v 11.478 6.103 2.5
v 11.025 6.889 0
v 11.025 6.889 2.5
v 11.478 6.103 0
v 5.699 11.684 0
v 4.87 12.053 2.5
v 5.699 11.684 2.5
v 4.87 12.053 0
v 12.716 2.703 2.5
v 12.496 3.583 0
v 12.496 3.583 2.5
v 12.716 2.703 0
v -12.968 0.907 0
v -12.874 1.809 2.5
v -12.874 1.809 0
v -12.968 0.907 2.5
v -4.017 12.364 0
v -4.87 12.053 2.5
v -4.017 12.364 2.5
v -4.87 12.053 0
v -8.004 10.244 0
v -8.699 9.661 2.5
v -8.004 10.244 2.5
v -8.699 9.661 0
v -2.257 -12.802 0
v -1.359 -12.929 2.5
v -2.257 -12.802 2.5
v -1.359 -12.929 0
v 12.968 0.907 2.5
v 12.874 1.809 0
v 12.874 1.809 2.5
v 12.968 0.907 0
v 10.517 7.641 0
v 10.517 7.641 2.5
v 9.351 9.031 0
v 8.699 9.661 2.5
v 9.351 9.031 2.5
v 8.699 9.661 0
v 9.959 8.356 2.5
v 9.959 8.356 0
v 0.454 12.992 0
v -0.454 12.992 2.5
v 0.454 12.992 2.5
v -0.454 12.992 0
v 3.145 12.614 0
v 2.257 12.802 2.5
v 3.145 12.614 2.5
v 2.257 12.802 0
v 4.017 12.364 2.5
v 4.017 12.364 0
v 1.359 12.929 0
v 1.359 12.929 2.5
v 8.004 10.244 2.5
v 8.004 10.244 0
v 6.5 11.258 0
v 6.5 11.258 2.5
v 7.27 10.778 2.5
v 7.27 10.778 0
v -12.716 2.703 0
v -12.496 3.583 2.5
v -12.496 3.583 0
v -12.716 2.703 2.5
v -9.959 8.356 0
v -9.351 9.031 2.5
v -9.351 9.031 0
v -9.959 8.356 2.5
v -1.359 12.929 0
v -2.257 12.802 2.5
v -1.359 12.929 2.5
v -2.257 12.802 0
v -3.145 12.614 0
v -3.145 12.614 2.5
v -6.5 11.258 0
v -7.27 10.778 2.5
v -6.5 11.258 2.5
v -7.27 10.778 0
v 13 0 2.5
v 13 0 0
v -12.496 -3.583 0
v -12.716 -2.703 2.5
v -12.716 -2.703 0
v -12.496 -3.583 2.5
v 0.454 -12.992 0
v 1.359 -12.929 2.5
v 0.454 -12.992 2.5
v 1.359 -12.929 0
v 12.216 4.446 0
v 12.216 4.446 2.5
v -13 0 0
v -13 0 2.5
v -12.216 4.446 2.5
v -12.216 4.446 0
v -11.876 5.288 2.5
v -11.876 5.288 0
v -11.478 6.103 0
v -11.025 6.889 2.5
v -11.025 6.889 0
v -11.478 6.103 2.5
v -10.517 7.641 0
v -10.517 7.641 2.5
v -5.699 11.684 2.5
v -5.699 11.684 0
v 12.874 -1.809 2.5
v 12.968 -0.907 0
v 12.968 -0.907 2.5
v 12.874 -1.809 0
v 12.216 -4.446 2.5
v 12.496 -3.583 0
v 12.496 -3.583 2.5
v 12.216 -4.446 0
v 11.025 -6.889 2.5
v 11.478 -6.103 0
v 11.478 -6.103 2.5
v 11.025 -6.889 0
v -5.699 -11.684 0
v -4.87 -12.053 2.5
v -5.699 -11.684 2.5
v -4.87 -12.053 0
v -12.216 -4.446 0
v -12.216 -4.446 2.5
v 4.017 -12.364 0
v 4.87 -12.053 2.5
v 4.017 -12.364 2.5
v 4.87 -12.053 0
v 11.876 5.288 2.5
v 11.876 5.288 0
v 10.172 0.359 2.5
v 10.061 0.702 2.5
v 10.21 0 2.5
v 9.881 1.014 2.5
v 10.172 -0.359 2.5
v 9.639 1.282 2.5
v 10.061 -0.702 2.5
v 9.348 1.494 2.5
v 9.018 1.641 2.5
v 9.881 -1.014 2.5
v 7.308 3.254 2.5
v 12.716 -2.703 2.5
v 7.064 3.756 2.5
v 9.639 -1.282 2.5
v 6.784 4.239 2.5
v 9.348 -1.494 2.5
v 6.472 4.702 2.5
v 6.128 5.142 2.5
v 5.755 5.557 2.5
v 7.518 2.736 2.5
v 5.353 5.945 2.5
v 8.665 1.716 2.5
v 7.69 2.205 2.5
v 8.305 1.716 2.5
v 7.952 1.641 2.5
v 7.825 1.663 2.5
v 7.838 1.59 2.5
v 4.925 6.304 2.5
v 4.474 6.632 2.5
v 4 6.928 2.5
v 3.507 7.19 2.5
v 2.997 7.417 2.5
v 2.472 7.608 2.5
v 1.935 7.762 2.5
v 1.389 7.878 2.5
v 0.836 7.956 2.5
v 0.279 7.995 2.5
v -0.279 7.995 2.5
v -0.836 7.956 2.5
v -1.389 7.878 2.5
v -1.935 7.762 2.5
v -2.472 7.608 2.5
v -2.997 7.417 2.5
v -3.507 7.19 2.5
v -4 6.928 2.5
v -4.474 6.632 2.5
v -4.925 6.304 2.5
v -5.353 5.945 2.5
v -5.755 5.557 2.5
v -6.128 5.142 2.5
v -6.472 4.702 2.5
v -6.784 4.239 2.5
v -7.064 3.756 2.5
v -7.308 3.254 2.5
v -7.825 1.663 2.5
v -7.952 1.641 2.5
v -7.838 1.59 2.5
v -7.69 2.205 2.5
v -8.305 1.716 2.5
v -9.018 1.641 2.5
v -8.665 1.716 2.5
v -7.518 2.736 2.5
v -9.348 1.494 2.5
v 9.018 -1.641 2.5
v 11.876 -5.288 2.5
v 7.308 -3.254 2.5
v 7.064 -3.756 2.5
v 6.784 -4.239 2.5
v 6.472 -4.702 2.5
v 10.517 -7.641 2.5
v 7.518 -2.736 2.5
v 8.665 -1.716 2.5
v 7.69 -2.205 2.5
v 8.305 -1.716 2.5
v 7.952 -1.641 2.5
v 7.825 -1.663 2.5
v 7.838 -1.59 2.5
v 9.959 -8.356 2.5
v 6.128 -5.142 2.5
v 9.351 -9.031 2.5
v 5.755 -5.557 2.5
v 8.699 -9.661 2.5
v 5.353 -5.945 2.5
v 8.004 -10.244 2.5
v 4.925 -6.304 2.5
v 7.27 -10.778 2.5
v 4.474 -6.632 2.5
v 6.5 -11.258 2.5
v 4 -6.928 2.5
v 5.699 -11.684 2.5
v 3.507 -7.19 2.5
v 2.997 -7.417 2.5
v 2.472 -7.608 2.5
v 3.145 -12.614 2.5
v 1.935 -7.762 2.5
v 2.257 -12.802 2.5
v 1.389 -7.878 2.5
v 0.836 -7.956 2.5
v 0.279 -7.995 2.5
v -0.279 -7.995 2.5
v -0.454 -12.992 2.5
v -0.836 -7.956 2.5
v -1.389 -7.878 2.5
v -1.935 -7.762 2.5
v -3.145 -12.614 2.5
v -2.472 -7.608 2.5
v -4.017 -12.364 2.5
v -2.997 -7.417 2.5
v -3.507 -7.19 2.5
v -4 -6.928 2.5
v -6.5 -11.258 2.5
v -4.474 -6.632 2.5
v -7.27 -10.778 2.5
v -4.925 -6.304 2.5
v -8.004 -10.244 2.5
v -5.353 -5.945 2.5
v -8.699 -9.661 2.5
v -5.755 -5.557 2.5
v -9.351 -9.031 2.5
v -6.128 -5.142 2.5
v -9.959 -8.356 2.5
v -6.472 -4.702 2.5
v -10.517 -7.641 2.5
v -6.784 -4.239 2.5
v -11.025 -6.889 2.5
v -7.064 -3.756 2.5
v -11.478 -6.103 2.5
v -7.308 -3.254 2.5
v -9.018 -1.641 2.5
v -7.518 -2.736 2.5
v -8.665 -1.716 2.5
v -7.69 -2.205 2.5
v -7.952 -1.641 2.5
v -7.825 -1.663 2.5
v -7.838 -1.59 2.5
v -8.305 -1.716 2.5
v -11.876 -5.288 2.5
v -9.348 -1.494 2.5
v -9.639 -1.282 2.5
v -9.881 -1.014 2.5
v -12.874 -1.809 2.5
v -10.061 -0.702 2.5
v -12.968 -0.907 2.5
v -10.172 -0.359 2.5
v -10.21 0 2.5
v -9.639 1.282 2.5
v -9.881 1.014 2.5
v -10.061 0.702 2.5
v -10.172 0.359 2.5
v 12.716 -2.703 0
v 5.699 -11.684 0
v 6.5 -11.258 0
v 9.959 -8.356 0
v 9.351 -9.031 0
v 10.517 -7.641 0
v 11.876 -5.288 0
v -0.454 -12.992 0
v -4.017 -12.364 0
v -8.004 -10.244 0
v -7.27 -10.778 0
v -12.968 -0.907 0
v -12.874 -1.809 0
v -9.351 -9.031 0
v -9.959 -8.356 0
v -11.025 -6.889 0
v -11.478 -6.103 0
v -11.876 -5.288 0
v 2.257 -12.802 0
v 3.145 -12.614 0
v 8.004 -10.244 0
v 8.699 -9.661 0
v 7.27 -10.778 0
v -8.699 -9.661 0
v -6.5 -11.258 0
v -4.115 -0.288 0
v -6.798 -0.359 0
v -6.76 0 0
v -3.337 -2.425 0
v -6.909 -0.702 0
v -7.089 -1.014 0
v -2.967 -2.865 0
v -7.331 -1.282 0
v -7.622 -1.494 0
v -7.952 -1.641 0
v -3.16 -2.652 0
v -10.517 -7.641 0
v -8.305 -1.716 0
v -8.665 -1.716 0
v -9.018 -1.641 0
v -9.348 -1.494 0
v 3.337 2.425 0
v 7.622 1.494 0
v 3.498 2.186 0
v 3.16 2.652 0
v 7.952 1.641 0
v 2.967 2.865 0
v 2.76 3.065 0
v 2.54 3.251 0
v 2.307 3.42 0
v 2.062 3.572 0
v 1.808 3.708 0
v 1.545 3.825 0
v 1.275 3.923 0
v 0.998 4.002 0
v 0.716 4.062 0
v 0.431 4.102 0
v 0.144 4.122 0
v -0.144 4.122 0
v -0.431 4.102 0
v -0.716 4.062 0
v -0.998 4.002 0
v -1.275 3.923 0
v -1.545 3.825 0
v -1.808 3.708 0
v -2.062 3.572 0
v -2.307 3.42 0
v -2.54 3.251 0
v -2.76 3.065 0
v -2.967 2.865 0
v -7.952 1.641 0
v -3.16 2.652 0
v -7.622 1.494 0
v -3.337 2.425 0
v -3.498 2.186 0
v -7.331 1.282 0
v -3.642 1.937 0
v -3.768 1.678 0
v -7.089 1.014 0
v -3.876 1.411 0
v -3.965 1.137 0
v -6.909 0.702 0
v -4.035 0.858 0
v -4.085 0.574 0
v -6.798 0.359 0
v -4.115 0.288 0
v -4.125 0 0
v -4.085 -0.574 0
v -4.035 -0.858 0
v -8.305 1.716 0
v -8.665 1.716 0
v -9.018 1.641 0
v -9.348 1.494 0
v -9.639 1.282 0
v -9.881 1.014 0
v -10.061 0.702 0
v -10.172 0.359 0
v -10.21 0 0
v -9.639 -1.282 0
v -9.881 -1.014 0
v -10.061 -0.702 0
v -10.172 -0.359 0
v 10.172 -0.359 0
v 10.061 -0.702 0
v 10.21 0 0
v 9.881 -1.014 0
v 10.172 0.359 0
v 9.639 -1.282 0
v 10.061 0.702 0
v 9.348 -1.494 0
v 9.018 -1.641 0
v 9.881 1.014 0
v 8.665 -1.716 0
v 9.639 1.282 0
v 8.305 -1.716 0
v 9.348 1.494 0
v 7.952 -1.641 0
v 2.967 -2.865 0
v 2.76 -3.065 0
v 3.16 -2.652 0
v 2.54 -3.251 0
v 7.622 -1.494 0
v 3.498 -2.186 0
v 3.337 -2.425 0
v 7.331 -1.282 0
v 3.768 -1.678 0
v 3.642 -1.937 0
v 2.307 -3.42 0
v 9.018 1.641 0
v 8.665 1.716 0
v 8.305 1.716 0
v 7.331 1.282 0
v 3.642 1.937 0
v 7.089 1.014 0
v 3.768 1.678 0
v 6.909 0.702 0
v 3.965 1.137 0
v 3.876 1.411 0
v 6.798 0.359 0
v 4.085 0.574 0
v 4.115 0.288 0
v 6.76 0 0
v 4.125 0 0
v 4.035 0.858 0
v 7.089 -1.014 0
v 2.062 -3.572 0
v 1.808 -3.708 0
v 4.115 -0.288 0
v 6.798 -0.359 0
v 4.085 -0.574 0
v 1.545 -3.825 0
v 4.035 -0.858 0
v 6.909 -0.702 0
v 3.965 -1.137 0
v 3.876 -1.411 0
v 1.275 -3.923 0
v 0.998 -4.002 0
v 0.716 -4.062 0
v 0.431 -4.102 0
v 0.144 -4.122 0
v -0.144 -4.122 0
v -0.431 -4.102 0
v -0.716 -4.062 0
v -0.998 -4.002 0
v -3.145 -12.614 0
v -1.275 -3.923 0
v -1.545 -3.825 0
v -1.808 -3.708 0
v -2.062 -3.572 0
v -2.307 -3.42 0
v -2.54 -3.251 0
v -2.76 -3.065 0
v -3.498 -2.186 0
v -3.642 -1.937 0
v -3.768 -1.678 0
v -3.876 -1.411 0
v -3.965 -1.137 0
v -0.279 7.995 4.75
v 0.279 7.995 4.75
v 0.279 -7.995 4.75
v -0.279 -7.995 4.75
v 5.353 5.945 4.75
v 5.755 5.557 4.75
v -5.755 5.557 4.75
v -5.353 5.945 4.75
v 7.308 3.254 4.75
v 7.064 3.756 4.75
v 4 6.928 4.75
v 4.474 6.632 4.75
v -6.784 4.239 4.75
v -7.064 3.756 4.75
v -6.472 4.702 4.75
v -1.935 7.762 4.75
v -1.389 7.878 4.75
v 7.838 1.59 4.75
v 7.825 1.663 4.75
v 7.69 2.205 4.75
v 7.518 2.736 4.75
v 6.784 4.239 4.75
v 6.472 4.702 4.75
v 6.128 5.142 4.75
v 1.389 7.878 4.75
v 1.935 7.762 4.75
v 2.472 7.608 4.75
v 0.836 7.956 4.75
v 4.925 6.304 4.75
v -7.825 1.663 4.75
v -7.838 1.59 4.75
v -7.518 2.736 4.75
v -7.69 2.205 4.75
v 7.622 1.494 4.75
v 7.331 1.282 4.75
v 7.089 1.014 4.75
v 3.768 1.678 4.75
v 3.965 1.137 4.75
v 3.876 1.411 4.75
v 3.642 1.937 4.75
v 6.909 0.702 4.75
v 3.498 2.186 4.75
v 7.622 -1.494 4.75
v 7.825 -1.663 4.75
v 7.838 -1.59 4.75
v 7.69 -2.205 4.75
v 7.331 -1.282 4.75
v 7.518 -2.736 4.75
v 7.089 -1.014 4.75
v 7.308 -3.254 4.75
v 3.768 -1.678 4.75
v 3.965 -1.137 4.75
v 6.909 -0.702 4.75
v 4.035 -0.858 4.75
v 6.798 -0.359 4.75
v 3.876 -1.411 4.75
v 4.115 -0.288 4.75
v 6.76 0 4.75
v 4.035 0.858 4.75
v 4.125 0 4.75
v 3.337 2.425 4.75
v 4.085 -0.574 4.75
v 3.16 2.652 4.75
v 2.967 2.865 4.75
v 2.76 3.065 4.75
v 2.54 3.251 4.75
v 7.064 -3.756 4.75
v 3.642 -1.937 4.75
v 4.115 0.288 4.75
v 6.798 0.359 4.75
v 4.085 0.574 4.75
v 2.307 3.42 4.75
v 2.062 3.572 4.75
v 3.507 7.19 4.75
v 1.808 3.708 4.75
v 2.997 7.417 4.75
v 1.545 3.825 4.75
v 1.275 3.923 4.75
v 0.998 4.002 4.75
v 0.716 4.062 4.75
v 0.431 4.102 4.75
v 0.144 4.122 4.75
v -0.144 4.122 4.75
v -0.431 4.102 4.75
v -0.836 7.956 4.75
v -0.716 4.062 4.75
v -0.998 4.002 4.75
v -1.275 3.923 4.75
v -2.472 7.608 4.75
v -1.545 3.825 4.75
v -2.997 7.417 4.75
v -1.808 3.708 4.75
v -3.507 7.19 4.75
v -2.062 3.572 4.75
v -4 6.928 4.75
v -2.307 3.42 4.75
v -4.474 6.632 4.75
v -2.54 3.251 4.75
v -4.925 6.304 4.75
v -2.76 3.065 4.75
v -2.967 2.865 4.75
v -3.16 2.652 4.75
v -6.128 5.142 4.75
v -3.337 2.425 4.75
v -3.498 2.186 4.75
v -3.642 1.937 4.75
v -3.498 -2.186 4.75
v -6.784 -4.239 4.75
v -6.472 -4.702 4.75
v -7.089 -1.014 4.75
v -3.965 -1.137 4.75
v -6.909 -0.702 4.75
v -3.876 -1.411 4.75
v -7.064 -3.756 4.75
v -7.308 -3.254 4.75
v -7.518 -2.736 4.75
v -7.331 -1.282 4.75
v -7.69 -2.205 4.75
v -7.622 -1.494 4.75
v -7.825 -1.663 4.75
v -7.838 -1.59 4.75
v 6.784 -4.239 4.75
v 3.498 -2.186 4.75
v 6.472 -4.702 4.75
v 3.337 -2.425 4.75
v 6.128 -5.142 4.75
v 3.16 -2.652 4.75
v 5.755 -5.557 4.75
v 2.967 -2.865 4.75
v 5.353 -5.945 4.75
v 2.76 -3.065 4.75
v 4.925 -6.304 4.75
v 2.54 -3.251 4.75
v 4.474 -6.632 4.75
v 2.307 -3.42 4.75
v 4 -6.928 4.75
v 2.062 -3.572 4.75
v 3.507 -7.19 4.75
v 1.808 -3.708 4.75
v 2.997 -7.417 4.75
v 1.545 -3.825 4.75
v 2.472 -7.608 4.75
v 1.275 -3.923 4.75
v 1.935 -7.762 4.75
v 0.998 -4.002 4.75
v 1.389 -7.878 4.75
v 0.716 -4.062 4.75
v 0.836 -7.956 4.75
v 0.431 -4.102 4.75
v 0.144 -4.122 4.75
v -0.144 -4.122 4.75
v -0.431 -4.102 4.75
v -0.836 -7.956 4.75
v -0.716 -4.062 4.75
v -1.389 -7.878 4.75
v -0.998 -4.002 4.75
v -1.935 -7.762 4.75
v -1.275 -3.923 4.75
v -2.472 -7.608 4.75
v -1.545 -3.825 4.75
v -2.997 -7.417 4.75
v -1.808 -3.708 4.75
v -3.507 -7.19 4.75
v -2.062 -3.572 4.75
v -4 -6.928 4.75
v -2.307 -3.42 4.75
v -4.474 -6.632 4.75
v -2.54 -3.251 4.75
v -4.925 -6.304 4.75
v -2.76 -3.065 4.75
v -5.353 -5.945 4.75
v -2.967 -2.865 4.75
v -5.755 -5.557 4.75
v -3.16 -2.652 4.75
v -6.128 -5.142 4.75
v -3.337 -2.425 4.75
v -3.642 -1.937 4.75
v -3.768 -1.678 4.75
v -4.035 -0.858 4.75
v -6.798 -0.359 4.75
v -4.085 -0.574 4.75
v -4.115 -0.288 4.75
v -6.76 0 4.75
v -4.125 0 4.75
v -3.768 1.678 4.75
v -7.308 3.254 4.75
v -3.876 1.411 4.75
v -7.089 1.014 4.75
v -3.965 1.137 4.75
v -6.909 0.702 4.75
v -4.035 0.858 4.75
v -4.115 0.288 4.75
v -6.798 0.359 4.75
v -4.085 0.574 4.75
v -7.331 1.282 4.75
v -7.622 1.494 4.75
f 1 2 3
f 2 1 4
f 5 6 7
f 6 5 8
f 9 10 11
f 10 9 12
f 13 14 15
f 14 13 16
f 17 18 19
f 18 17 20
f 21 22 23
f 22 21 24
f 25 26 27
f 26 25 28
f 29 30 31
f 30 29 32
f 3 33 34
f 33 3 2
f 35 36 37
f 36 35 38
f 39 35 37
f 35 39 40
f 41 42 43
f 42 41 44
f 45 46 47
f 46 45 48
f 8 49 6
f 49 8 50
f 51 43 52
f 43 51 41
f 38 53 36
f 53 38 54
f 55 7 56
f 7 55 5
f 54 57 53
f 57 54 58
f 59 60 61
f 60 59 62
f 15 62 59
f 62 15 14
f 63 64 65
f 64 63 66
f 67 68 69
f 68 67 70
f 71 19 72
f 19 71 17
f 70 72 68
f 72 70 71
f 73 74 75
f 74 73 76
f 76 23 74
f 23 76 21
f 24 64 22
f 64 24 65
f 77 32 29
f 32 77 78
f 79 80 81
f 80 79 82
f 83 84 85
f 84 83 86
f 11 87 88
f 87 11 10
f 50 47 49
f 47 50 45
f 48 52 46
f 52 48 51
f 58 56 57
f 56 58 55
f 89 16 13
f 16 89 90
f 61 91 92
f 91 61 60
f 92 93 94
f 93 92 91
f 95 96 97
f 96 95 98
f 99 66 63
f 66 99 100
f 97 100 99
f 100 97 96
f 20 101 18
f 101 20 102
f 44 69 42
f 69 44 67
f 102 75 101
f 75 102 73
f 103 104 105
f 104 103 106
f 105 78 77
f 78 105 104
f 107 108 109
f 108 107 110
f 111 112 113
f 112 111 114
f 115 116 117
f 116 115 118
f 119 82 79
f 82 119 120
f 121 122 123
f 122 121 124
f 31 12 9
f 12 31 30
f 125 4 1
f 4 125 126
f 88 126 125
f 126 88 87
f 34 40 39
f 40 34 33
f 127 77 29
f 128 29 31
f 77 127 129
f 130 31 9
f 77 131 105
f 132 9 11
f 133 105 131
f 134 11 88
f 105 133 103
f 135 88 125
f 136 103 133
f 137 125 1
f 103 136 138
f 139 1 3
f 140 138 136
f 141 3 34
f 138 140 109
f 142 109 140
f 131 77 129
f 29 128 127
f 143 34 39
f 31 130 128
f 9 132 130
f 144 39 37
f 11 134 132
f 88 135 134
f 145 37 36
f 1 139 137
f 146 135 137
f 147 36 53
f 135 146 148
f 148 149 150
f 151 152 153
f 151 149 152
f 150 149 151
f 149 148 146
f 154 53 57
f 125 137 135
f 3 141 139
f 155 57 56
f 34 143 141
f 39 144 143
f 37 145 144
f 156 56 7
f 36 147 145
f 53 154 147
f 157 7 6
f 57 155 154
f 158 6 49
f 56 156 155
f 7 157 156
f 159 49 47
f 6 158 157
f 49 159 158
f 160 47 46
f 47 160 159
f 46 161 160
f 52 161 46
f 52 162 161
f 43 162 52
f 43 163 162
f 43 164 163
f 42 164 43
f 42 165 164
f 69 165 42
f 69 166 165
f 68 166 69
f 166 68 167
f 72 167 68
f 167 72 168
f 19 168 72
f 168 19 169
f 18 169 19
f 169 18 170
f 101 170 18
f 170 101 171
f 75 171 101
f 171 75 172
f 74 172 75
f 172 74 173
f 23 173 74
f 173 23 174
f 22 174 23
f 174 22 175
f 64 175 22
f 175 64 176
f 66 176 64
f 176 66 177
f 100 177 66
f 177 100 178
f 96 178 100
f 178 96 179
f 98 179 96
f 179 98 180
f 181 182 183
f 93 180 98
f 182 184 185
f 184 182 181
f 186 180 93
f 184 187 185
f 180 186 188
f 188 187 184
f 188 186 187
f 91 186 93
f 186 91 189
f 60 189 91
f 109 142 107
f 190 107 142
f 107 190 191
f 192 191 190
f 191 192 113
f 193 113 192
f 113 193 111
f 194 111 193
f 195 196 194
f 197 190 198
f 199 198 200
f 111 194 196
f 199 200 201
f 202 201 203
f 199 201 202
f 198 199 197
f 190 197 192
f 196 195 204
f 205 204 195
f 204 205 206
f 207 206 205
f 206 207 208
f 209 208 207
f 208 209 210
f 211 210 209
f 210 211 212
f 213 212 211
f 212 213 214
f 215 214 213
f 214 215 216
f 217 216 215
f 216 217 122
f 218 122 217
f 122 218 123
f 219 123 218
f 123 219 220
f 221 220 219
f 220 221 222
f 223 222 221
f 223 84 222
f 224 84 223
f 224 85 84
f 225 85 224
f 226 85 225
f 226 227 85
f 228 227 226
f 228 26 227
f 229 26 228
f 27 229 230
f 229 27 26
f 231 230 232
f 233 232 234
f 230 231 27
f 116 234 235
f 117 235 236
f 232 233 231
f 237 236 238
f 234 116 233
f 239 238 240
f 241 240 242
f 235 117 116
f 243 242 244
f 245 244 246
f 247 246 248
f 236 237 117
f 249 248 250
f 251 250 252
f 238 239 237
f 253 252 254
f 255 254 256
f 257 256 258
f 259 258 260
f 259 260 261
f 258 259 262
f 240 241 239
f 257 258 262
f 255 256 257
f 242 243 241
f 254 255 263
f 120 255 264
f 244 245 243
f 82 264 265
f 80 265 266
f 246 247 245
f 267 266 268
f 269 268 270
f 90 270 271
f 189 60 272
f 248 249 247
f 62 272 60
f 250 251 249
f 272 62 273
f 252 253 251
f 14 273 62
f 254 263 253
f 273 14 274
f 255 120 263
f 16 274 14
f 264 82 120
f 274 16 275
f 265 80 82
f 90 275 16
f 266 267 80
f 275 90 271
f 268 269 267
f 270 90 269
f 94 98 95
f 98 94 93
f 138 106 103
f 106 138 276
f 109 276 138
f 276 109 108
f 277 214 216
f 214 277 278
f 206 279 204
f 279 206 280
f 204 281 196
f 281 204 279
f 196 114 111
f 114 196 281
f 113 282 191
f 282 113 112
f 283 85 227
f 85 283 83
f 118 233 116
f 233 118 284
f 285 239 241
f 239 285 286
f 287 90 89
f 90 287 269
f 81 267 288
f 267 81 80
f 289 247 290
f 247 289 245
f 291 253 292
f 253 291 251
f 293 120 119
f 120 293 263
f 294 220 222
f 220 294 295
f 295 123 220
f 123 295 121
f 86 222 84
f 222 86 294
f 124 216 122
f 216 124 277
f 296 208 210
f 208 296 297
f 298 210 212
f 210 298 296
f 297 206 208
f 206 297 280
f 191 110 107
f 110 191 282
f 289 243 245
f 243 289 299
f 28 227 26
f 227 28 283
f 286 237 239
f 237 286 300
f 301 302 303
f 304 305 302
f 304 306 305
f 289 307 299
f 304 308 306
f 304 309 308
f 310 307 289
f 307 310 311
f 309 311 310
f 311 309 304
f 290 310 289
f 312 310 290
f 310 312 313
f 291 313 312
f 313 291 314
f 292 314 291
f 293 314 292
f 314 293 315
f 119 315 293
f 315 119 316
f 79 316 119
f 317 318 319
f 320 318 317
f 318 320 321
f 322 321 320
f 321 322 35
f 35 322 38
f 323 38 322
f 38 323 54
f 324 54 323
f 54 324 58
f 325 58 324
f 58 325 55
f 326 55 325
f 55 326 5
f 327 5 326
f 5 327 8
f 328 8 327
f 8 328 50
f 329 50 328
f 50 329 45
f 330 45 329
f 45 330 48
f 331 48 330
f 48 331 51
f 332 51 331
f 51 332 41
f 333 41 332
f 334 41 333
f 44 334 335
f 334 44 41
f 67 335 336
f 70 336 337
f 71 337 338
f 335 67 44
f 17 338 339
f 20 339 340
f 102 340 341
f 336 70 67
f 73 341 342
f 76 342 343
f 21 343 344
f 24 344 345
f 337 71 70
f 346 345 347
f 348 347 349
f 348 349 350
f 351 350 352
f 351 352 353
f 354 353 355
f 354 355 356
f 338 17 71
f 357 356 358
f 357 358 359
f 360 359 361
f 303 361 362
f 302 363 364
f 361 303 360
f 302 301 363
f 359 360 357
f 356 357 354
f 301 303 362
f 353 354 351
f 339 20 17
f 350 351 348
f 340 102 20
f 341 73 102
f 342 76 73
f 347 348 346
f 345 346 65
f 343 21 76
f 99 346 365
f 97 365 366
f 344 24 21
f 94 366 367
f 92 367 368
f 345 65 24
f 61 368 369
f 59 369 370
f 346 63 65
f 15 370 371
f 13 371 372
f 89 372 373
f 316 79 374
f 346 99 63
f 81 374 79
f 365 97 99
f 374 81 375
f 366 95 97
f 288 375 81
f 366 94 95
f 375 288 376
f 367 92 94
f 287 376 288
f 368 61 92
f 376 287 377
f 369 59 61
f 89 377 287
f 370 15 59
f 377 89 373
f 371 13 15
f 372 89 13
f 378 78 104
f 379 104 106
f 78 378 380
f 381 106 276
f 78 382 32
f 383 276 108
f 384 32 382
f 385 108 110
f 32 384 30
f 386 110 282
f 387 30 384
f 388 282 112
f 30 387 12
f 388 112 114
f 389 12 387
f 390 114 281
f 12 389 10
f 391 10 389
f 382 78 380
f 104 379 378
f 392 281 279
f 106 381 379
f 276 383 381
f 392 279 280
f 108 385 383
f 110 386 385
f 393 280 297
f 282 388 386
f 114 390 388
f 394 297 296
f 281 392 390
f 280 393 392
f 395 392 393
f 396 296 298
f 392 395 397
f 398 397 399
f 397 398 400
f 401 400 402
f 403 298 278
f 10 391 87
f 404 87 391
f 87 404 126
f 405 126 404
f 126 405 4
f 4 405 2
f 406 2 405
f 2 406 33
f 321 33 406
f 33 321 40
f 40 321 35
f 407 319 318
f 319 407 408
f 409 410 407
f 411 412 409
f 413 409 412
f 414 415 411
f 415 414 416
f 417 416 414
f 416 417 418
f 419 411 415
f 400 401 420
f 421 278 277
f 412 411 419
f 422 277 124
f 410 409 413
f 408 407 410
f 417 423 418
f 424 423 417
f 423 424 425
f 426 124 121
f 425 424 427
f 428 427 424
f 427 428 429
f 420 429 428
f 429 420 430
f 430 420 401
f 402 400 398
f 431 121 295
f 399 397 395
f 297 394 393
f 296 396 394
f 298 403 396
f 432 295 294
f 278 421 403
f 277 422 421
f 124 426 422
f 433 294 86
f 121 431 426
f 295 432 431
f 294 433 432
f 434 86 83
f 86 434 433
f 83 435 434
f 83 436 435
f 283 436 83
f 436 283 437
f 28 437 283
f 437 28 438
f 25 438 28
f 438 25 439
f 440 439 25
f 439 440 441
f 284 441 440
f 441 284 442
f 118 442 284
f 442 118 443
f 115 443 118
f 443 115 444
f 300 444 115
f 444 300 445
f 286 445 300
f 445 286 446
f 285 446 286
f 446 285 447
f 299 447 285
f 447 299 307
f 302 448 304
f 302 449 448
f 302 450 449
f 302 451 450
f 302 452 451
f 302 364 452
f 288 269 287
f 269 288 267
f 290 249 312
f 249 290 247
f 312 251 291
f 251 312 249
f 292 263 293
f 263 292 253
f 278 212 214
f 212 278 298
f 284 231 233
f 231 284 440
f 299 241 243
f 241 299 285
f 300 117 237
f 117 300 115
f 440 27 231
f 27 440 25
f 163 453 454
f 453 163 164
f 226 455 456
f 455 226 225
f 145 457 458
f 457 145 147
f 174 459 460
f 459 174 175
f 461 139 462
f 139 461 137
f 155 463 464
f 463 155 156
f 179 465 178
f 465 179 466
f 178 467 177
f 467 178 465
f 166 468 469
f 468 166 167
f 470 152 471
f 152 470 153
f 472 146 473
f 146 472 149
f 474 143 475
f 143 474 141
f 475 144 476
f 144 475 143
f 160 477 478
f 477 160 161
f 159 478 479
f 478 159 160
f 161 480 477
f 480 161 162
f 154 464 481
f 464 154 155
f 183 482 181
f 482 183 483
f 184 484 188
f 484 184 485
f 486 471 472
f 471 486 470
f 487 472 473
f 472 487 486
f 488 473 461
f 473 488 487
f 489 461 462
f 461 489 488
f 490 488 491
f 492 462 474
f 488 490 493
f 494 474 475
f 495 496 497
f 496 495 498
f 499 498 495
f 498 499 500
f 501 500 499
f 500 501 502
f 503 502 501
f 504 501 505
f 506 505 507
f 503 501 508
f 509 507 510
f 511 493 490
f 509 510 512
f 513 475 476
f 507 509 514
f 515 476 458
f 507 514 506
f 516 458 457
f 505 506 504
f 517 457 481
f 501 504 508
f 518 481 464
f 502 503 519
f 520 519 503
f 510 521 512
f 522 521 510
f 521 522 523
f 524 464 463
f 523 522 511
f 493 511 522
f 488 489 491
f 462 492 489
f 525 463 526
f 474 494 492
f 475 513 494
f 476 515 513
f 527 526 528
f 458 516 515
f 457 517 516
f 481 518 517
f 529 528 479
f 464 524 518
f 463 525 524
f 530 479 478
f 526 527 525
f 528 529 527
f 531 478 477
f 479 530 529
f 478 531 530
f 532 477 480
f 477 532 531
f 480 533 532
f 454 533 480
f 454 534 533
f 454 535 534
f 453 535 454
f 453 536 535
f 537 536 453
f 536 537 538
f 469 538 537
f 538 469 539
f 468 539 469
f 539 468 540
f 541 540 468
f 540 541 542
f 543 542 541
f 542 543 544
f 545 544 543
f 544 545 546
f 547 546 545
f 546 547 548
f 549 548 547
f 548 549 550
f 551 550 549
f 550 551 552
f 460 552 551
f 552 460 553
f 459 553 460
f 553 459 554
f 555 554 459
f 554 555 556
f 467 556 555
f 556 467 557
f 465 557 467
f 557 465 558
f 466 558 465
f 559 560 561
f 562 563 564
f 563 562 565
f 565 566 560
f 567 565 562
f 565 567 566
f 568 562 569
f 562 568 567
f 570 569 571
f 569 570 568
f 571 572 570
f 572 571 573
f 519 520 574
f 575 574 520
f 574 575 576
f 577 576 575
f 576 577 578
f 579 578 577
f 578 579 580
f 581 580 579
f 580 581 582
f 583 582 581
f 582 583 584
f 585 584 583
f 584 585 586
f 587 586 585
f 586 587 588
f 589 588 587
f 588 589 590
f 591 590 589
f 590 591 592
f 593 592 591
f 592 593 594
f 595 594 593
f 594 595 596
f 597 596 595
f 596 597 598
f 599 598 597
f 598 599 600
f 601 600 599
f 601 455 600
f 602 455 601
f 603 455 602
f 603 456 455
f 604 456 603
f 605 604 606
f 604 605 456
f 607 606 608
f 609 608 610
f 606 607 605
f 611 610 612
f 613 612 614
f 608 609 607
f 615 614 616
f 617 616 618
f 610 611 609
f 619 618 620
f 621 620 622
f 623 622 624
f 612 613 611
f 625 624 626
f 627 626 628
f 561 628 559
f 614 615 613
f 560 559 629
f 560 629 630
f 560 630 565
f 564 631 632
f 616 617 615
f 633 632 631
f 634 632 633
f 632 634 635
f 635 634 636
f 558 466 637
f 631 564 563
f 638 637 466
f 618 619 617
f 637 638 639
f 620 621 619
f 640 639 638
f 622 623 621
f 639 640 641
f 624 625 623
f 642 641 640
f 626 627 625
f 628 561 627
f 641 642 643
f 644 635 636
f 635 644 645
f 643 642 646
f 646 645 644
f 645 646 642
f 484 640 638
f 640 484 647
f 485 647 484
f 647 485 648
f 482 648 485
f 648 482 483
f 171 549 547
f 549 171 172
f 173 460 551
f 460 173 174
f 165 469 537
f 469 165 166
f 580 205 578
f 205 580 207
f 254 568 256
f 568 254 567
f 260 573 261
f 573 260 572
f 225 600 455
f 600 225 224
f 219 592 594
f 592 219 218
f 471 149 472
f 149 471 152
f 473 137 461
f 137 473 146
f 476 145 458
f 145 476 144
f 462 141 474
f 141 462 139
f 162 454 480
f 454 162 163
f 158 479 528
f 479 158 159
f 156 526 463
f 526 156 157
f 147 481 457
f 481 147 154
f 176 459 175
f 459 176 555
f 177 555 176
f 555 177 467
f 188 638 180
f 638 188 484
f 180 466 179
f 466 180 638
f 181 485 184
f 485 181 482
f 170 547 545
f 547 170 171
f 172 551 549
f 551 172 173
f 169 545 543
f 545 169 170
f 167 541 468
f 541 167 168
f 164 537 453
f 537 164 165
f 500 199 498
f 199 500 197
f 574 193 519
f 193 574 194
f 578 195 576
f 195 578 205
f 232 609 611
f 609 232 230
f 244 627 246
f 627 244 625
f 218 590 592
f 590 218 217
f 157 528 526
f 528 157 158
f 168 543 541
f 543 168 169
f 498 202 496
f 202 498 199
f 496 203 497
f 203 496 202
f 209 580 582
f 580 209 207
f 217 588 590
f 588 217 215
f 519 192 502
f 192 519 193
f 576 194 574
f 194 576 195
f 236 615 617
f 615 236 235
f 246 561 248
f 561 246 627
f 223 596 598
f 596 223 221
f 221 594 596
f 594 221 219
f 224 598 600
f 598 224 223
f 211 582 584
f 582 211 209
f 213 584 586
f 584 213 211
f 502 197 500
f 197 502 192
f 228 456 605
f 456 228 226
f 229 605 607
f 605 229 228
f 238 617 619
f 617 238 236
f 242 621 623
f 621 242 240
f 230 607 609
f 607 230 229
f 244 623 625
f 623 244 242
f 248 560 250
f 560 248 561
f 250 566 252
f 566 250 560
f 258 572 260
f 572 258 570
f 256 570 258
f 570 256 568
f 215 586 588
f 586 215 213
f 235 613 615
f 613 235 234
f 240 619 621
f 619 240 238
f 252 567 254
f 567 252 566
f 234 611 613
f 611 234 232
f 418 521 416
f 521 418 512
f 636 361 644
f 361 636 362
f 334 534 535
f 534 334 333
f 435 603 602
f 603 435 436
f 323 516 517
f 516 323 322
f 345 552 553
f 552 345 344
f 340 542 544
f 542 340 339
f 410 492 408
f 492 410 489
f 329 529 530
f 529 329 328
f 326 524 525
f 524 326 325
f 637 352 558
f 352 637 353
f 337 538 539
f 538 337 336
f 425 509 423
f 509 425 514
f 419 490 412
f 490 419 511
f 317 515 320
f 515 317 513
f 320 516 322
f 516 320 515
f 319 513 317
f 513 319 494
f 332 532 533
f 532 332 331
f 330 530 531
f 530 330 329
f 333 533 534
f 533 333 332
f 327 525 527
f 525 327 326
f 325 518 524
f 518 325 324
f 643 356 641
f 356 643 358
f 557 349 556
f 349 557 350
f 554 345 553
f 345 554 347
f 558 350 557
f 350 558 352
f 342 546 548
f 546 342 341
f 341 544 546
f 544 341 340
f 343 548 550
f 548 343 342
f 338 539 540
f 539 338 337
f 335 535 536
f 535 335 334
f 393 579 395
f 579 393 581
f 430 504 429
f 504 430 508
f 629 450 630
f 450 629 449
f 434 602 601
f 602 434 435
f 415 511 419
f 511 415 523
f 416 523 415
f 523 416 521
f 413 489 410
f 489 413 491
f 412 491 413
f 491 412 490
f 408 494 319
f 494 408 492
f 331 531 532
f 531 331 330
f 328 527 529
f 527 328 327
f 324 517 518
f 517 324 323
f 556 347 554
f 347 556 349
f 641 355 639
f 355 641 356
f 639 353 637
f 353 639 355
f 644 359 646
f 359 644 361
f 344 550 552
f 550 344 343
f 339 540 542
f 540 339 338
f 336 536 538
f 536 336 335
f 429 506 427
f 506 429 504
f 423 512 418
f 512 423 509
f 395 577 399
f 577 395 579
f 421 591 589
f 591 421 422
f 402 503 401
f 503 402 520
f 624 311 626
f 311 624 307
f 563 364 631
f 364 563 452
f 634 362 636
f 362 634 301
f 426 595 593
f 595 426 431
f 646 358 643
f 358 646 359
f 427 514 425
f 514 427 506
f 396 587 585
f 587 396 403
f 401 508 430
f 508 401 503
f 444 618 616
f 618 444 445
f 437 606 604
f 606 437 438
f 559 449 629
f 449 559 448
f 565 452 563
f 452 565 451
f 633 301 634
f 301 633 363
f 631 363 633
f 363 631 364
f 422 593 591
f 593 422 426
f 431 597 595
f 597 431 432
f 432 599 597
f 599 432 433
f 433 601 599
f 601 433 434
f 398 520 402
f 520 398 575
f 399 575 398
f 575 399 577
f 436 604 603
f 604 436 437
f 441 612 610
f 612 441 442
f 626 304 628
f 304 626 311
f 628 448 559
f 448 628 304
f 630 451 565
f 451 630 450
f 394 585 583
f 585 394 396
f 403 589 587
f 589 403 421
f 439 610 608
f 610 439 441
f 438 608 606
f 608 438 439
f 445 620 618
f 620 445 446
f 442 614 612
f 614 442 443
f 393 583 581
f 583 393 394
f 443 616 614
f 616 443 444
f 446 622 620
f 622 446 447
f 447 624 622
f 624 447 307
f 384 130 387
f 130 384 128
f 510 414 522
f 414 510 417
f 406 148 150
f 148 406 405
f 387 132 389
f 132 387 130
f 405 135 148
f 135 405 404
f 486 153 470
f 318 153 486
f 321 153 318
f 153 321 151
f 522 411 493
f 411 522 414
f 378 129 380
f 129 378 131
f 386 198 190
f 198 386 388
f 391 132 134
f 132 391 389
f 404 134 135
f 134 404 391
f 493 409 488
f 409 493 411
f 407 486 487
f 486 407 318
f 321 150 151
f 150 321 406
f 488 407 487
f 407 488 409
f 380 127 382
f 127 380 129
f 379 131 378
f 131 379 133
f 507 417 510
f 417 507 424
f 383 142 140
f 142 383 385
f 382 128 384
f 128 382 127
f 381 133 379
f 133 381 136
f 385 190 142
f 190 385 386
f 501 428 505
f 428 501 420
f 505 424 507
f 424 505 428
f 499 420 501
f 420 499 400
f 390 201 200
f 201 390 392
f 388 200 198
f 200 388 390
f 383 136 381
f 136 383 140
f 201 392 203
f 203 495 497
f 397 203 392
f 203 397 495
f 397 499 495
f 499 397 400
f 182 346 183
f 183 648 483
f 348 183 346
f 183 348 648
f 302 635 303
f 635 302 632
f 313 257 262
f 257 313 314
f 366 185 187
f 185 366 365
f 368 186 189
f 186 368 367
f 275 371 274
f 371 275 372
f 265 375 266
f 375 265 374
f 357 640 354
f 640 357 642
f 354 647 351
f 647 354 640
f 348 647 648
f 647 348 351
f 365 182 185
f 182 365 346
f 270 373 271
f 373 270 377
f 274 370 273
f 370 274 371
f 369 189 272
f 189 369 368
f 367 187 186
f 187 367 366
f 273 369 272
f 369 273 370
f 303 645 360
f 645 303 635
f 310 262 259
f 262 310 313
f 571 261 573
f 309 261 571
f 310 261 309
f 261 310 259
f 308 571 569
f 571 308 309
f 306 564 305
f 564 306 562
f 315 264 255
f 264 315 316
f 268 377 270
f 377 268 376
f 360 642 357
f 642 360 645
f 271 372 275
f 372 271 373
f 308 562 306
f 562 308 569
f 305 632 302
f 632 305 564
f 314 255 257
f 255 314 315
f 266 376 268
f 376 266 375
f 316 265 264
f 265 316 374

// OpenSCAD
// Project: BigBox v2
// Part:    z_axis_guide_bottom_bracket (x4)
// Author:  Grigori Palamartšuk <grigori.palamarchuk@gmail.com>
// Source:  http://bigbox.lecktor.ee

module body()
{
    cylinder(h=2.5,r=13,$fn=90);
    translate([0,0,2.5]) cylinder(h=2.25,r=8,$fn=90);
}

module holes()
{
    // 8mm rod hole
    cylinder(h=4.75,r=4.125,$fn=90);
    
    // screw holes
    translate([8.485,0,0]) cylinder(h=4.75,r=1.725,$fn=30);
    translate([-8.485,0,0]) cylinder(h=4.75,r=1.725,$fn=30);
}

difference()
{
    body();
    holes();
}
